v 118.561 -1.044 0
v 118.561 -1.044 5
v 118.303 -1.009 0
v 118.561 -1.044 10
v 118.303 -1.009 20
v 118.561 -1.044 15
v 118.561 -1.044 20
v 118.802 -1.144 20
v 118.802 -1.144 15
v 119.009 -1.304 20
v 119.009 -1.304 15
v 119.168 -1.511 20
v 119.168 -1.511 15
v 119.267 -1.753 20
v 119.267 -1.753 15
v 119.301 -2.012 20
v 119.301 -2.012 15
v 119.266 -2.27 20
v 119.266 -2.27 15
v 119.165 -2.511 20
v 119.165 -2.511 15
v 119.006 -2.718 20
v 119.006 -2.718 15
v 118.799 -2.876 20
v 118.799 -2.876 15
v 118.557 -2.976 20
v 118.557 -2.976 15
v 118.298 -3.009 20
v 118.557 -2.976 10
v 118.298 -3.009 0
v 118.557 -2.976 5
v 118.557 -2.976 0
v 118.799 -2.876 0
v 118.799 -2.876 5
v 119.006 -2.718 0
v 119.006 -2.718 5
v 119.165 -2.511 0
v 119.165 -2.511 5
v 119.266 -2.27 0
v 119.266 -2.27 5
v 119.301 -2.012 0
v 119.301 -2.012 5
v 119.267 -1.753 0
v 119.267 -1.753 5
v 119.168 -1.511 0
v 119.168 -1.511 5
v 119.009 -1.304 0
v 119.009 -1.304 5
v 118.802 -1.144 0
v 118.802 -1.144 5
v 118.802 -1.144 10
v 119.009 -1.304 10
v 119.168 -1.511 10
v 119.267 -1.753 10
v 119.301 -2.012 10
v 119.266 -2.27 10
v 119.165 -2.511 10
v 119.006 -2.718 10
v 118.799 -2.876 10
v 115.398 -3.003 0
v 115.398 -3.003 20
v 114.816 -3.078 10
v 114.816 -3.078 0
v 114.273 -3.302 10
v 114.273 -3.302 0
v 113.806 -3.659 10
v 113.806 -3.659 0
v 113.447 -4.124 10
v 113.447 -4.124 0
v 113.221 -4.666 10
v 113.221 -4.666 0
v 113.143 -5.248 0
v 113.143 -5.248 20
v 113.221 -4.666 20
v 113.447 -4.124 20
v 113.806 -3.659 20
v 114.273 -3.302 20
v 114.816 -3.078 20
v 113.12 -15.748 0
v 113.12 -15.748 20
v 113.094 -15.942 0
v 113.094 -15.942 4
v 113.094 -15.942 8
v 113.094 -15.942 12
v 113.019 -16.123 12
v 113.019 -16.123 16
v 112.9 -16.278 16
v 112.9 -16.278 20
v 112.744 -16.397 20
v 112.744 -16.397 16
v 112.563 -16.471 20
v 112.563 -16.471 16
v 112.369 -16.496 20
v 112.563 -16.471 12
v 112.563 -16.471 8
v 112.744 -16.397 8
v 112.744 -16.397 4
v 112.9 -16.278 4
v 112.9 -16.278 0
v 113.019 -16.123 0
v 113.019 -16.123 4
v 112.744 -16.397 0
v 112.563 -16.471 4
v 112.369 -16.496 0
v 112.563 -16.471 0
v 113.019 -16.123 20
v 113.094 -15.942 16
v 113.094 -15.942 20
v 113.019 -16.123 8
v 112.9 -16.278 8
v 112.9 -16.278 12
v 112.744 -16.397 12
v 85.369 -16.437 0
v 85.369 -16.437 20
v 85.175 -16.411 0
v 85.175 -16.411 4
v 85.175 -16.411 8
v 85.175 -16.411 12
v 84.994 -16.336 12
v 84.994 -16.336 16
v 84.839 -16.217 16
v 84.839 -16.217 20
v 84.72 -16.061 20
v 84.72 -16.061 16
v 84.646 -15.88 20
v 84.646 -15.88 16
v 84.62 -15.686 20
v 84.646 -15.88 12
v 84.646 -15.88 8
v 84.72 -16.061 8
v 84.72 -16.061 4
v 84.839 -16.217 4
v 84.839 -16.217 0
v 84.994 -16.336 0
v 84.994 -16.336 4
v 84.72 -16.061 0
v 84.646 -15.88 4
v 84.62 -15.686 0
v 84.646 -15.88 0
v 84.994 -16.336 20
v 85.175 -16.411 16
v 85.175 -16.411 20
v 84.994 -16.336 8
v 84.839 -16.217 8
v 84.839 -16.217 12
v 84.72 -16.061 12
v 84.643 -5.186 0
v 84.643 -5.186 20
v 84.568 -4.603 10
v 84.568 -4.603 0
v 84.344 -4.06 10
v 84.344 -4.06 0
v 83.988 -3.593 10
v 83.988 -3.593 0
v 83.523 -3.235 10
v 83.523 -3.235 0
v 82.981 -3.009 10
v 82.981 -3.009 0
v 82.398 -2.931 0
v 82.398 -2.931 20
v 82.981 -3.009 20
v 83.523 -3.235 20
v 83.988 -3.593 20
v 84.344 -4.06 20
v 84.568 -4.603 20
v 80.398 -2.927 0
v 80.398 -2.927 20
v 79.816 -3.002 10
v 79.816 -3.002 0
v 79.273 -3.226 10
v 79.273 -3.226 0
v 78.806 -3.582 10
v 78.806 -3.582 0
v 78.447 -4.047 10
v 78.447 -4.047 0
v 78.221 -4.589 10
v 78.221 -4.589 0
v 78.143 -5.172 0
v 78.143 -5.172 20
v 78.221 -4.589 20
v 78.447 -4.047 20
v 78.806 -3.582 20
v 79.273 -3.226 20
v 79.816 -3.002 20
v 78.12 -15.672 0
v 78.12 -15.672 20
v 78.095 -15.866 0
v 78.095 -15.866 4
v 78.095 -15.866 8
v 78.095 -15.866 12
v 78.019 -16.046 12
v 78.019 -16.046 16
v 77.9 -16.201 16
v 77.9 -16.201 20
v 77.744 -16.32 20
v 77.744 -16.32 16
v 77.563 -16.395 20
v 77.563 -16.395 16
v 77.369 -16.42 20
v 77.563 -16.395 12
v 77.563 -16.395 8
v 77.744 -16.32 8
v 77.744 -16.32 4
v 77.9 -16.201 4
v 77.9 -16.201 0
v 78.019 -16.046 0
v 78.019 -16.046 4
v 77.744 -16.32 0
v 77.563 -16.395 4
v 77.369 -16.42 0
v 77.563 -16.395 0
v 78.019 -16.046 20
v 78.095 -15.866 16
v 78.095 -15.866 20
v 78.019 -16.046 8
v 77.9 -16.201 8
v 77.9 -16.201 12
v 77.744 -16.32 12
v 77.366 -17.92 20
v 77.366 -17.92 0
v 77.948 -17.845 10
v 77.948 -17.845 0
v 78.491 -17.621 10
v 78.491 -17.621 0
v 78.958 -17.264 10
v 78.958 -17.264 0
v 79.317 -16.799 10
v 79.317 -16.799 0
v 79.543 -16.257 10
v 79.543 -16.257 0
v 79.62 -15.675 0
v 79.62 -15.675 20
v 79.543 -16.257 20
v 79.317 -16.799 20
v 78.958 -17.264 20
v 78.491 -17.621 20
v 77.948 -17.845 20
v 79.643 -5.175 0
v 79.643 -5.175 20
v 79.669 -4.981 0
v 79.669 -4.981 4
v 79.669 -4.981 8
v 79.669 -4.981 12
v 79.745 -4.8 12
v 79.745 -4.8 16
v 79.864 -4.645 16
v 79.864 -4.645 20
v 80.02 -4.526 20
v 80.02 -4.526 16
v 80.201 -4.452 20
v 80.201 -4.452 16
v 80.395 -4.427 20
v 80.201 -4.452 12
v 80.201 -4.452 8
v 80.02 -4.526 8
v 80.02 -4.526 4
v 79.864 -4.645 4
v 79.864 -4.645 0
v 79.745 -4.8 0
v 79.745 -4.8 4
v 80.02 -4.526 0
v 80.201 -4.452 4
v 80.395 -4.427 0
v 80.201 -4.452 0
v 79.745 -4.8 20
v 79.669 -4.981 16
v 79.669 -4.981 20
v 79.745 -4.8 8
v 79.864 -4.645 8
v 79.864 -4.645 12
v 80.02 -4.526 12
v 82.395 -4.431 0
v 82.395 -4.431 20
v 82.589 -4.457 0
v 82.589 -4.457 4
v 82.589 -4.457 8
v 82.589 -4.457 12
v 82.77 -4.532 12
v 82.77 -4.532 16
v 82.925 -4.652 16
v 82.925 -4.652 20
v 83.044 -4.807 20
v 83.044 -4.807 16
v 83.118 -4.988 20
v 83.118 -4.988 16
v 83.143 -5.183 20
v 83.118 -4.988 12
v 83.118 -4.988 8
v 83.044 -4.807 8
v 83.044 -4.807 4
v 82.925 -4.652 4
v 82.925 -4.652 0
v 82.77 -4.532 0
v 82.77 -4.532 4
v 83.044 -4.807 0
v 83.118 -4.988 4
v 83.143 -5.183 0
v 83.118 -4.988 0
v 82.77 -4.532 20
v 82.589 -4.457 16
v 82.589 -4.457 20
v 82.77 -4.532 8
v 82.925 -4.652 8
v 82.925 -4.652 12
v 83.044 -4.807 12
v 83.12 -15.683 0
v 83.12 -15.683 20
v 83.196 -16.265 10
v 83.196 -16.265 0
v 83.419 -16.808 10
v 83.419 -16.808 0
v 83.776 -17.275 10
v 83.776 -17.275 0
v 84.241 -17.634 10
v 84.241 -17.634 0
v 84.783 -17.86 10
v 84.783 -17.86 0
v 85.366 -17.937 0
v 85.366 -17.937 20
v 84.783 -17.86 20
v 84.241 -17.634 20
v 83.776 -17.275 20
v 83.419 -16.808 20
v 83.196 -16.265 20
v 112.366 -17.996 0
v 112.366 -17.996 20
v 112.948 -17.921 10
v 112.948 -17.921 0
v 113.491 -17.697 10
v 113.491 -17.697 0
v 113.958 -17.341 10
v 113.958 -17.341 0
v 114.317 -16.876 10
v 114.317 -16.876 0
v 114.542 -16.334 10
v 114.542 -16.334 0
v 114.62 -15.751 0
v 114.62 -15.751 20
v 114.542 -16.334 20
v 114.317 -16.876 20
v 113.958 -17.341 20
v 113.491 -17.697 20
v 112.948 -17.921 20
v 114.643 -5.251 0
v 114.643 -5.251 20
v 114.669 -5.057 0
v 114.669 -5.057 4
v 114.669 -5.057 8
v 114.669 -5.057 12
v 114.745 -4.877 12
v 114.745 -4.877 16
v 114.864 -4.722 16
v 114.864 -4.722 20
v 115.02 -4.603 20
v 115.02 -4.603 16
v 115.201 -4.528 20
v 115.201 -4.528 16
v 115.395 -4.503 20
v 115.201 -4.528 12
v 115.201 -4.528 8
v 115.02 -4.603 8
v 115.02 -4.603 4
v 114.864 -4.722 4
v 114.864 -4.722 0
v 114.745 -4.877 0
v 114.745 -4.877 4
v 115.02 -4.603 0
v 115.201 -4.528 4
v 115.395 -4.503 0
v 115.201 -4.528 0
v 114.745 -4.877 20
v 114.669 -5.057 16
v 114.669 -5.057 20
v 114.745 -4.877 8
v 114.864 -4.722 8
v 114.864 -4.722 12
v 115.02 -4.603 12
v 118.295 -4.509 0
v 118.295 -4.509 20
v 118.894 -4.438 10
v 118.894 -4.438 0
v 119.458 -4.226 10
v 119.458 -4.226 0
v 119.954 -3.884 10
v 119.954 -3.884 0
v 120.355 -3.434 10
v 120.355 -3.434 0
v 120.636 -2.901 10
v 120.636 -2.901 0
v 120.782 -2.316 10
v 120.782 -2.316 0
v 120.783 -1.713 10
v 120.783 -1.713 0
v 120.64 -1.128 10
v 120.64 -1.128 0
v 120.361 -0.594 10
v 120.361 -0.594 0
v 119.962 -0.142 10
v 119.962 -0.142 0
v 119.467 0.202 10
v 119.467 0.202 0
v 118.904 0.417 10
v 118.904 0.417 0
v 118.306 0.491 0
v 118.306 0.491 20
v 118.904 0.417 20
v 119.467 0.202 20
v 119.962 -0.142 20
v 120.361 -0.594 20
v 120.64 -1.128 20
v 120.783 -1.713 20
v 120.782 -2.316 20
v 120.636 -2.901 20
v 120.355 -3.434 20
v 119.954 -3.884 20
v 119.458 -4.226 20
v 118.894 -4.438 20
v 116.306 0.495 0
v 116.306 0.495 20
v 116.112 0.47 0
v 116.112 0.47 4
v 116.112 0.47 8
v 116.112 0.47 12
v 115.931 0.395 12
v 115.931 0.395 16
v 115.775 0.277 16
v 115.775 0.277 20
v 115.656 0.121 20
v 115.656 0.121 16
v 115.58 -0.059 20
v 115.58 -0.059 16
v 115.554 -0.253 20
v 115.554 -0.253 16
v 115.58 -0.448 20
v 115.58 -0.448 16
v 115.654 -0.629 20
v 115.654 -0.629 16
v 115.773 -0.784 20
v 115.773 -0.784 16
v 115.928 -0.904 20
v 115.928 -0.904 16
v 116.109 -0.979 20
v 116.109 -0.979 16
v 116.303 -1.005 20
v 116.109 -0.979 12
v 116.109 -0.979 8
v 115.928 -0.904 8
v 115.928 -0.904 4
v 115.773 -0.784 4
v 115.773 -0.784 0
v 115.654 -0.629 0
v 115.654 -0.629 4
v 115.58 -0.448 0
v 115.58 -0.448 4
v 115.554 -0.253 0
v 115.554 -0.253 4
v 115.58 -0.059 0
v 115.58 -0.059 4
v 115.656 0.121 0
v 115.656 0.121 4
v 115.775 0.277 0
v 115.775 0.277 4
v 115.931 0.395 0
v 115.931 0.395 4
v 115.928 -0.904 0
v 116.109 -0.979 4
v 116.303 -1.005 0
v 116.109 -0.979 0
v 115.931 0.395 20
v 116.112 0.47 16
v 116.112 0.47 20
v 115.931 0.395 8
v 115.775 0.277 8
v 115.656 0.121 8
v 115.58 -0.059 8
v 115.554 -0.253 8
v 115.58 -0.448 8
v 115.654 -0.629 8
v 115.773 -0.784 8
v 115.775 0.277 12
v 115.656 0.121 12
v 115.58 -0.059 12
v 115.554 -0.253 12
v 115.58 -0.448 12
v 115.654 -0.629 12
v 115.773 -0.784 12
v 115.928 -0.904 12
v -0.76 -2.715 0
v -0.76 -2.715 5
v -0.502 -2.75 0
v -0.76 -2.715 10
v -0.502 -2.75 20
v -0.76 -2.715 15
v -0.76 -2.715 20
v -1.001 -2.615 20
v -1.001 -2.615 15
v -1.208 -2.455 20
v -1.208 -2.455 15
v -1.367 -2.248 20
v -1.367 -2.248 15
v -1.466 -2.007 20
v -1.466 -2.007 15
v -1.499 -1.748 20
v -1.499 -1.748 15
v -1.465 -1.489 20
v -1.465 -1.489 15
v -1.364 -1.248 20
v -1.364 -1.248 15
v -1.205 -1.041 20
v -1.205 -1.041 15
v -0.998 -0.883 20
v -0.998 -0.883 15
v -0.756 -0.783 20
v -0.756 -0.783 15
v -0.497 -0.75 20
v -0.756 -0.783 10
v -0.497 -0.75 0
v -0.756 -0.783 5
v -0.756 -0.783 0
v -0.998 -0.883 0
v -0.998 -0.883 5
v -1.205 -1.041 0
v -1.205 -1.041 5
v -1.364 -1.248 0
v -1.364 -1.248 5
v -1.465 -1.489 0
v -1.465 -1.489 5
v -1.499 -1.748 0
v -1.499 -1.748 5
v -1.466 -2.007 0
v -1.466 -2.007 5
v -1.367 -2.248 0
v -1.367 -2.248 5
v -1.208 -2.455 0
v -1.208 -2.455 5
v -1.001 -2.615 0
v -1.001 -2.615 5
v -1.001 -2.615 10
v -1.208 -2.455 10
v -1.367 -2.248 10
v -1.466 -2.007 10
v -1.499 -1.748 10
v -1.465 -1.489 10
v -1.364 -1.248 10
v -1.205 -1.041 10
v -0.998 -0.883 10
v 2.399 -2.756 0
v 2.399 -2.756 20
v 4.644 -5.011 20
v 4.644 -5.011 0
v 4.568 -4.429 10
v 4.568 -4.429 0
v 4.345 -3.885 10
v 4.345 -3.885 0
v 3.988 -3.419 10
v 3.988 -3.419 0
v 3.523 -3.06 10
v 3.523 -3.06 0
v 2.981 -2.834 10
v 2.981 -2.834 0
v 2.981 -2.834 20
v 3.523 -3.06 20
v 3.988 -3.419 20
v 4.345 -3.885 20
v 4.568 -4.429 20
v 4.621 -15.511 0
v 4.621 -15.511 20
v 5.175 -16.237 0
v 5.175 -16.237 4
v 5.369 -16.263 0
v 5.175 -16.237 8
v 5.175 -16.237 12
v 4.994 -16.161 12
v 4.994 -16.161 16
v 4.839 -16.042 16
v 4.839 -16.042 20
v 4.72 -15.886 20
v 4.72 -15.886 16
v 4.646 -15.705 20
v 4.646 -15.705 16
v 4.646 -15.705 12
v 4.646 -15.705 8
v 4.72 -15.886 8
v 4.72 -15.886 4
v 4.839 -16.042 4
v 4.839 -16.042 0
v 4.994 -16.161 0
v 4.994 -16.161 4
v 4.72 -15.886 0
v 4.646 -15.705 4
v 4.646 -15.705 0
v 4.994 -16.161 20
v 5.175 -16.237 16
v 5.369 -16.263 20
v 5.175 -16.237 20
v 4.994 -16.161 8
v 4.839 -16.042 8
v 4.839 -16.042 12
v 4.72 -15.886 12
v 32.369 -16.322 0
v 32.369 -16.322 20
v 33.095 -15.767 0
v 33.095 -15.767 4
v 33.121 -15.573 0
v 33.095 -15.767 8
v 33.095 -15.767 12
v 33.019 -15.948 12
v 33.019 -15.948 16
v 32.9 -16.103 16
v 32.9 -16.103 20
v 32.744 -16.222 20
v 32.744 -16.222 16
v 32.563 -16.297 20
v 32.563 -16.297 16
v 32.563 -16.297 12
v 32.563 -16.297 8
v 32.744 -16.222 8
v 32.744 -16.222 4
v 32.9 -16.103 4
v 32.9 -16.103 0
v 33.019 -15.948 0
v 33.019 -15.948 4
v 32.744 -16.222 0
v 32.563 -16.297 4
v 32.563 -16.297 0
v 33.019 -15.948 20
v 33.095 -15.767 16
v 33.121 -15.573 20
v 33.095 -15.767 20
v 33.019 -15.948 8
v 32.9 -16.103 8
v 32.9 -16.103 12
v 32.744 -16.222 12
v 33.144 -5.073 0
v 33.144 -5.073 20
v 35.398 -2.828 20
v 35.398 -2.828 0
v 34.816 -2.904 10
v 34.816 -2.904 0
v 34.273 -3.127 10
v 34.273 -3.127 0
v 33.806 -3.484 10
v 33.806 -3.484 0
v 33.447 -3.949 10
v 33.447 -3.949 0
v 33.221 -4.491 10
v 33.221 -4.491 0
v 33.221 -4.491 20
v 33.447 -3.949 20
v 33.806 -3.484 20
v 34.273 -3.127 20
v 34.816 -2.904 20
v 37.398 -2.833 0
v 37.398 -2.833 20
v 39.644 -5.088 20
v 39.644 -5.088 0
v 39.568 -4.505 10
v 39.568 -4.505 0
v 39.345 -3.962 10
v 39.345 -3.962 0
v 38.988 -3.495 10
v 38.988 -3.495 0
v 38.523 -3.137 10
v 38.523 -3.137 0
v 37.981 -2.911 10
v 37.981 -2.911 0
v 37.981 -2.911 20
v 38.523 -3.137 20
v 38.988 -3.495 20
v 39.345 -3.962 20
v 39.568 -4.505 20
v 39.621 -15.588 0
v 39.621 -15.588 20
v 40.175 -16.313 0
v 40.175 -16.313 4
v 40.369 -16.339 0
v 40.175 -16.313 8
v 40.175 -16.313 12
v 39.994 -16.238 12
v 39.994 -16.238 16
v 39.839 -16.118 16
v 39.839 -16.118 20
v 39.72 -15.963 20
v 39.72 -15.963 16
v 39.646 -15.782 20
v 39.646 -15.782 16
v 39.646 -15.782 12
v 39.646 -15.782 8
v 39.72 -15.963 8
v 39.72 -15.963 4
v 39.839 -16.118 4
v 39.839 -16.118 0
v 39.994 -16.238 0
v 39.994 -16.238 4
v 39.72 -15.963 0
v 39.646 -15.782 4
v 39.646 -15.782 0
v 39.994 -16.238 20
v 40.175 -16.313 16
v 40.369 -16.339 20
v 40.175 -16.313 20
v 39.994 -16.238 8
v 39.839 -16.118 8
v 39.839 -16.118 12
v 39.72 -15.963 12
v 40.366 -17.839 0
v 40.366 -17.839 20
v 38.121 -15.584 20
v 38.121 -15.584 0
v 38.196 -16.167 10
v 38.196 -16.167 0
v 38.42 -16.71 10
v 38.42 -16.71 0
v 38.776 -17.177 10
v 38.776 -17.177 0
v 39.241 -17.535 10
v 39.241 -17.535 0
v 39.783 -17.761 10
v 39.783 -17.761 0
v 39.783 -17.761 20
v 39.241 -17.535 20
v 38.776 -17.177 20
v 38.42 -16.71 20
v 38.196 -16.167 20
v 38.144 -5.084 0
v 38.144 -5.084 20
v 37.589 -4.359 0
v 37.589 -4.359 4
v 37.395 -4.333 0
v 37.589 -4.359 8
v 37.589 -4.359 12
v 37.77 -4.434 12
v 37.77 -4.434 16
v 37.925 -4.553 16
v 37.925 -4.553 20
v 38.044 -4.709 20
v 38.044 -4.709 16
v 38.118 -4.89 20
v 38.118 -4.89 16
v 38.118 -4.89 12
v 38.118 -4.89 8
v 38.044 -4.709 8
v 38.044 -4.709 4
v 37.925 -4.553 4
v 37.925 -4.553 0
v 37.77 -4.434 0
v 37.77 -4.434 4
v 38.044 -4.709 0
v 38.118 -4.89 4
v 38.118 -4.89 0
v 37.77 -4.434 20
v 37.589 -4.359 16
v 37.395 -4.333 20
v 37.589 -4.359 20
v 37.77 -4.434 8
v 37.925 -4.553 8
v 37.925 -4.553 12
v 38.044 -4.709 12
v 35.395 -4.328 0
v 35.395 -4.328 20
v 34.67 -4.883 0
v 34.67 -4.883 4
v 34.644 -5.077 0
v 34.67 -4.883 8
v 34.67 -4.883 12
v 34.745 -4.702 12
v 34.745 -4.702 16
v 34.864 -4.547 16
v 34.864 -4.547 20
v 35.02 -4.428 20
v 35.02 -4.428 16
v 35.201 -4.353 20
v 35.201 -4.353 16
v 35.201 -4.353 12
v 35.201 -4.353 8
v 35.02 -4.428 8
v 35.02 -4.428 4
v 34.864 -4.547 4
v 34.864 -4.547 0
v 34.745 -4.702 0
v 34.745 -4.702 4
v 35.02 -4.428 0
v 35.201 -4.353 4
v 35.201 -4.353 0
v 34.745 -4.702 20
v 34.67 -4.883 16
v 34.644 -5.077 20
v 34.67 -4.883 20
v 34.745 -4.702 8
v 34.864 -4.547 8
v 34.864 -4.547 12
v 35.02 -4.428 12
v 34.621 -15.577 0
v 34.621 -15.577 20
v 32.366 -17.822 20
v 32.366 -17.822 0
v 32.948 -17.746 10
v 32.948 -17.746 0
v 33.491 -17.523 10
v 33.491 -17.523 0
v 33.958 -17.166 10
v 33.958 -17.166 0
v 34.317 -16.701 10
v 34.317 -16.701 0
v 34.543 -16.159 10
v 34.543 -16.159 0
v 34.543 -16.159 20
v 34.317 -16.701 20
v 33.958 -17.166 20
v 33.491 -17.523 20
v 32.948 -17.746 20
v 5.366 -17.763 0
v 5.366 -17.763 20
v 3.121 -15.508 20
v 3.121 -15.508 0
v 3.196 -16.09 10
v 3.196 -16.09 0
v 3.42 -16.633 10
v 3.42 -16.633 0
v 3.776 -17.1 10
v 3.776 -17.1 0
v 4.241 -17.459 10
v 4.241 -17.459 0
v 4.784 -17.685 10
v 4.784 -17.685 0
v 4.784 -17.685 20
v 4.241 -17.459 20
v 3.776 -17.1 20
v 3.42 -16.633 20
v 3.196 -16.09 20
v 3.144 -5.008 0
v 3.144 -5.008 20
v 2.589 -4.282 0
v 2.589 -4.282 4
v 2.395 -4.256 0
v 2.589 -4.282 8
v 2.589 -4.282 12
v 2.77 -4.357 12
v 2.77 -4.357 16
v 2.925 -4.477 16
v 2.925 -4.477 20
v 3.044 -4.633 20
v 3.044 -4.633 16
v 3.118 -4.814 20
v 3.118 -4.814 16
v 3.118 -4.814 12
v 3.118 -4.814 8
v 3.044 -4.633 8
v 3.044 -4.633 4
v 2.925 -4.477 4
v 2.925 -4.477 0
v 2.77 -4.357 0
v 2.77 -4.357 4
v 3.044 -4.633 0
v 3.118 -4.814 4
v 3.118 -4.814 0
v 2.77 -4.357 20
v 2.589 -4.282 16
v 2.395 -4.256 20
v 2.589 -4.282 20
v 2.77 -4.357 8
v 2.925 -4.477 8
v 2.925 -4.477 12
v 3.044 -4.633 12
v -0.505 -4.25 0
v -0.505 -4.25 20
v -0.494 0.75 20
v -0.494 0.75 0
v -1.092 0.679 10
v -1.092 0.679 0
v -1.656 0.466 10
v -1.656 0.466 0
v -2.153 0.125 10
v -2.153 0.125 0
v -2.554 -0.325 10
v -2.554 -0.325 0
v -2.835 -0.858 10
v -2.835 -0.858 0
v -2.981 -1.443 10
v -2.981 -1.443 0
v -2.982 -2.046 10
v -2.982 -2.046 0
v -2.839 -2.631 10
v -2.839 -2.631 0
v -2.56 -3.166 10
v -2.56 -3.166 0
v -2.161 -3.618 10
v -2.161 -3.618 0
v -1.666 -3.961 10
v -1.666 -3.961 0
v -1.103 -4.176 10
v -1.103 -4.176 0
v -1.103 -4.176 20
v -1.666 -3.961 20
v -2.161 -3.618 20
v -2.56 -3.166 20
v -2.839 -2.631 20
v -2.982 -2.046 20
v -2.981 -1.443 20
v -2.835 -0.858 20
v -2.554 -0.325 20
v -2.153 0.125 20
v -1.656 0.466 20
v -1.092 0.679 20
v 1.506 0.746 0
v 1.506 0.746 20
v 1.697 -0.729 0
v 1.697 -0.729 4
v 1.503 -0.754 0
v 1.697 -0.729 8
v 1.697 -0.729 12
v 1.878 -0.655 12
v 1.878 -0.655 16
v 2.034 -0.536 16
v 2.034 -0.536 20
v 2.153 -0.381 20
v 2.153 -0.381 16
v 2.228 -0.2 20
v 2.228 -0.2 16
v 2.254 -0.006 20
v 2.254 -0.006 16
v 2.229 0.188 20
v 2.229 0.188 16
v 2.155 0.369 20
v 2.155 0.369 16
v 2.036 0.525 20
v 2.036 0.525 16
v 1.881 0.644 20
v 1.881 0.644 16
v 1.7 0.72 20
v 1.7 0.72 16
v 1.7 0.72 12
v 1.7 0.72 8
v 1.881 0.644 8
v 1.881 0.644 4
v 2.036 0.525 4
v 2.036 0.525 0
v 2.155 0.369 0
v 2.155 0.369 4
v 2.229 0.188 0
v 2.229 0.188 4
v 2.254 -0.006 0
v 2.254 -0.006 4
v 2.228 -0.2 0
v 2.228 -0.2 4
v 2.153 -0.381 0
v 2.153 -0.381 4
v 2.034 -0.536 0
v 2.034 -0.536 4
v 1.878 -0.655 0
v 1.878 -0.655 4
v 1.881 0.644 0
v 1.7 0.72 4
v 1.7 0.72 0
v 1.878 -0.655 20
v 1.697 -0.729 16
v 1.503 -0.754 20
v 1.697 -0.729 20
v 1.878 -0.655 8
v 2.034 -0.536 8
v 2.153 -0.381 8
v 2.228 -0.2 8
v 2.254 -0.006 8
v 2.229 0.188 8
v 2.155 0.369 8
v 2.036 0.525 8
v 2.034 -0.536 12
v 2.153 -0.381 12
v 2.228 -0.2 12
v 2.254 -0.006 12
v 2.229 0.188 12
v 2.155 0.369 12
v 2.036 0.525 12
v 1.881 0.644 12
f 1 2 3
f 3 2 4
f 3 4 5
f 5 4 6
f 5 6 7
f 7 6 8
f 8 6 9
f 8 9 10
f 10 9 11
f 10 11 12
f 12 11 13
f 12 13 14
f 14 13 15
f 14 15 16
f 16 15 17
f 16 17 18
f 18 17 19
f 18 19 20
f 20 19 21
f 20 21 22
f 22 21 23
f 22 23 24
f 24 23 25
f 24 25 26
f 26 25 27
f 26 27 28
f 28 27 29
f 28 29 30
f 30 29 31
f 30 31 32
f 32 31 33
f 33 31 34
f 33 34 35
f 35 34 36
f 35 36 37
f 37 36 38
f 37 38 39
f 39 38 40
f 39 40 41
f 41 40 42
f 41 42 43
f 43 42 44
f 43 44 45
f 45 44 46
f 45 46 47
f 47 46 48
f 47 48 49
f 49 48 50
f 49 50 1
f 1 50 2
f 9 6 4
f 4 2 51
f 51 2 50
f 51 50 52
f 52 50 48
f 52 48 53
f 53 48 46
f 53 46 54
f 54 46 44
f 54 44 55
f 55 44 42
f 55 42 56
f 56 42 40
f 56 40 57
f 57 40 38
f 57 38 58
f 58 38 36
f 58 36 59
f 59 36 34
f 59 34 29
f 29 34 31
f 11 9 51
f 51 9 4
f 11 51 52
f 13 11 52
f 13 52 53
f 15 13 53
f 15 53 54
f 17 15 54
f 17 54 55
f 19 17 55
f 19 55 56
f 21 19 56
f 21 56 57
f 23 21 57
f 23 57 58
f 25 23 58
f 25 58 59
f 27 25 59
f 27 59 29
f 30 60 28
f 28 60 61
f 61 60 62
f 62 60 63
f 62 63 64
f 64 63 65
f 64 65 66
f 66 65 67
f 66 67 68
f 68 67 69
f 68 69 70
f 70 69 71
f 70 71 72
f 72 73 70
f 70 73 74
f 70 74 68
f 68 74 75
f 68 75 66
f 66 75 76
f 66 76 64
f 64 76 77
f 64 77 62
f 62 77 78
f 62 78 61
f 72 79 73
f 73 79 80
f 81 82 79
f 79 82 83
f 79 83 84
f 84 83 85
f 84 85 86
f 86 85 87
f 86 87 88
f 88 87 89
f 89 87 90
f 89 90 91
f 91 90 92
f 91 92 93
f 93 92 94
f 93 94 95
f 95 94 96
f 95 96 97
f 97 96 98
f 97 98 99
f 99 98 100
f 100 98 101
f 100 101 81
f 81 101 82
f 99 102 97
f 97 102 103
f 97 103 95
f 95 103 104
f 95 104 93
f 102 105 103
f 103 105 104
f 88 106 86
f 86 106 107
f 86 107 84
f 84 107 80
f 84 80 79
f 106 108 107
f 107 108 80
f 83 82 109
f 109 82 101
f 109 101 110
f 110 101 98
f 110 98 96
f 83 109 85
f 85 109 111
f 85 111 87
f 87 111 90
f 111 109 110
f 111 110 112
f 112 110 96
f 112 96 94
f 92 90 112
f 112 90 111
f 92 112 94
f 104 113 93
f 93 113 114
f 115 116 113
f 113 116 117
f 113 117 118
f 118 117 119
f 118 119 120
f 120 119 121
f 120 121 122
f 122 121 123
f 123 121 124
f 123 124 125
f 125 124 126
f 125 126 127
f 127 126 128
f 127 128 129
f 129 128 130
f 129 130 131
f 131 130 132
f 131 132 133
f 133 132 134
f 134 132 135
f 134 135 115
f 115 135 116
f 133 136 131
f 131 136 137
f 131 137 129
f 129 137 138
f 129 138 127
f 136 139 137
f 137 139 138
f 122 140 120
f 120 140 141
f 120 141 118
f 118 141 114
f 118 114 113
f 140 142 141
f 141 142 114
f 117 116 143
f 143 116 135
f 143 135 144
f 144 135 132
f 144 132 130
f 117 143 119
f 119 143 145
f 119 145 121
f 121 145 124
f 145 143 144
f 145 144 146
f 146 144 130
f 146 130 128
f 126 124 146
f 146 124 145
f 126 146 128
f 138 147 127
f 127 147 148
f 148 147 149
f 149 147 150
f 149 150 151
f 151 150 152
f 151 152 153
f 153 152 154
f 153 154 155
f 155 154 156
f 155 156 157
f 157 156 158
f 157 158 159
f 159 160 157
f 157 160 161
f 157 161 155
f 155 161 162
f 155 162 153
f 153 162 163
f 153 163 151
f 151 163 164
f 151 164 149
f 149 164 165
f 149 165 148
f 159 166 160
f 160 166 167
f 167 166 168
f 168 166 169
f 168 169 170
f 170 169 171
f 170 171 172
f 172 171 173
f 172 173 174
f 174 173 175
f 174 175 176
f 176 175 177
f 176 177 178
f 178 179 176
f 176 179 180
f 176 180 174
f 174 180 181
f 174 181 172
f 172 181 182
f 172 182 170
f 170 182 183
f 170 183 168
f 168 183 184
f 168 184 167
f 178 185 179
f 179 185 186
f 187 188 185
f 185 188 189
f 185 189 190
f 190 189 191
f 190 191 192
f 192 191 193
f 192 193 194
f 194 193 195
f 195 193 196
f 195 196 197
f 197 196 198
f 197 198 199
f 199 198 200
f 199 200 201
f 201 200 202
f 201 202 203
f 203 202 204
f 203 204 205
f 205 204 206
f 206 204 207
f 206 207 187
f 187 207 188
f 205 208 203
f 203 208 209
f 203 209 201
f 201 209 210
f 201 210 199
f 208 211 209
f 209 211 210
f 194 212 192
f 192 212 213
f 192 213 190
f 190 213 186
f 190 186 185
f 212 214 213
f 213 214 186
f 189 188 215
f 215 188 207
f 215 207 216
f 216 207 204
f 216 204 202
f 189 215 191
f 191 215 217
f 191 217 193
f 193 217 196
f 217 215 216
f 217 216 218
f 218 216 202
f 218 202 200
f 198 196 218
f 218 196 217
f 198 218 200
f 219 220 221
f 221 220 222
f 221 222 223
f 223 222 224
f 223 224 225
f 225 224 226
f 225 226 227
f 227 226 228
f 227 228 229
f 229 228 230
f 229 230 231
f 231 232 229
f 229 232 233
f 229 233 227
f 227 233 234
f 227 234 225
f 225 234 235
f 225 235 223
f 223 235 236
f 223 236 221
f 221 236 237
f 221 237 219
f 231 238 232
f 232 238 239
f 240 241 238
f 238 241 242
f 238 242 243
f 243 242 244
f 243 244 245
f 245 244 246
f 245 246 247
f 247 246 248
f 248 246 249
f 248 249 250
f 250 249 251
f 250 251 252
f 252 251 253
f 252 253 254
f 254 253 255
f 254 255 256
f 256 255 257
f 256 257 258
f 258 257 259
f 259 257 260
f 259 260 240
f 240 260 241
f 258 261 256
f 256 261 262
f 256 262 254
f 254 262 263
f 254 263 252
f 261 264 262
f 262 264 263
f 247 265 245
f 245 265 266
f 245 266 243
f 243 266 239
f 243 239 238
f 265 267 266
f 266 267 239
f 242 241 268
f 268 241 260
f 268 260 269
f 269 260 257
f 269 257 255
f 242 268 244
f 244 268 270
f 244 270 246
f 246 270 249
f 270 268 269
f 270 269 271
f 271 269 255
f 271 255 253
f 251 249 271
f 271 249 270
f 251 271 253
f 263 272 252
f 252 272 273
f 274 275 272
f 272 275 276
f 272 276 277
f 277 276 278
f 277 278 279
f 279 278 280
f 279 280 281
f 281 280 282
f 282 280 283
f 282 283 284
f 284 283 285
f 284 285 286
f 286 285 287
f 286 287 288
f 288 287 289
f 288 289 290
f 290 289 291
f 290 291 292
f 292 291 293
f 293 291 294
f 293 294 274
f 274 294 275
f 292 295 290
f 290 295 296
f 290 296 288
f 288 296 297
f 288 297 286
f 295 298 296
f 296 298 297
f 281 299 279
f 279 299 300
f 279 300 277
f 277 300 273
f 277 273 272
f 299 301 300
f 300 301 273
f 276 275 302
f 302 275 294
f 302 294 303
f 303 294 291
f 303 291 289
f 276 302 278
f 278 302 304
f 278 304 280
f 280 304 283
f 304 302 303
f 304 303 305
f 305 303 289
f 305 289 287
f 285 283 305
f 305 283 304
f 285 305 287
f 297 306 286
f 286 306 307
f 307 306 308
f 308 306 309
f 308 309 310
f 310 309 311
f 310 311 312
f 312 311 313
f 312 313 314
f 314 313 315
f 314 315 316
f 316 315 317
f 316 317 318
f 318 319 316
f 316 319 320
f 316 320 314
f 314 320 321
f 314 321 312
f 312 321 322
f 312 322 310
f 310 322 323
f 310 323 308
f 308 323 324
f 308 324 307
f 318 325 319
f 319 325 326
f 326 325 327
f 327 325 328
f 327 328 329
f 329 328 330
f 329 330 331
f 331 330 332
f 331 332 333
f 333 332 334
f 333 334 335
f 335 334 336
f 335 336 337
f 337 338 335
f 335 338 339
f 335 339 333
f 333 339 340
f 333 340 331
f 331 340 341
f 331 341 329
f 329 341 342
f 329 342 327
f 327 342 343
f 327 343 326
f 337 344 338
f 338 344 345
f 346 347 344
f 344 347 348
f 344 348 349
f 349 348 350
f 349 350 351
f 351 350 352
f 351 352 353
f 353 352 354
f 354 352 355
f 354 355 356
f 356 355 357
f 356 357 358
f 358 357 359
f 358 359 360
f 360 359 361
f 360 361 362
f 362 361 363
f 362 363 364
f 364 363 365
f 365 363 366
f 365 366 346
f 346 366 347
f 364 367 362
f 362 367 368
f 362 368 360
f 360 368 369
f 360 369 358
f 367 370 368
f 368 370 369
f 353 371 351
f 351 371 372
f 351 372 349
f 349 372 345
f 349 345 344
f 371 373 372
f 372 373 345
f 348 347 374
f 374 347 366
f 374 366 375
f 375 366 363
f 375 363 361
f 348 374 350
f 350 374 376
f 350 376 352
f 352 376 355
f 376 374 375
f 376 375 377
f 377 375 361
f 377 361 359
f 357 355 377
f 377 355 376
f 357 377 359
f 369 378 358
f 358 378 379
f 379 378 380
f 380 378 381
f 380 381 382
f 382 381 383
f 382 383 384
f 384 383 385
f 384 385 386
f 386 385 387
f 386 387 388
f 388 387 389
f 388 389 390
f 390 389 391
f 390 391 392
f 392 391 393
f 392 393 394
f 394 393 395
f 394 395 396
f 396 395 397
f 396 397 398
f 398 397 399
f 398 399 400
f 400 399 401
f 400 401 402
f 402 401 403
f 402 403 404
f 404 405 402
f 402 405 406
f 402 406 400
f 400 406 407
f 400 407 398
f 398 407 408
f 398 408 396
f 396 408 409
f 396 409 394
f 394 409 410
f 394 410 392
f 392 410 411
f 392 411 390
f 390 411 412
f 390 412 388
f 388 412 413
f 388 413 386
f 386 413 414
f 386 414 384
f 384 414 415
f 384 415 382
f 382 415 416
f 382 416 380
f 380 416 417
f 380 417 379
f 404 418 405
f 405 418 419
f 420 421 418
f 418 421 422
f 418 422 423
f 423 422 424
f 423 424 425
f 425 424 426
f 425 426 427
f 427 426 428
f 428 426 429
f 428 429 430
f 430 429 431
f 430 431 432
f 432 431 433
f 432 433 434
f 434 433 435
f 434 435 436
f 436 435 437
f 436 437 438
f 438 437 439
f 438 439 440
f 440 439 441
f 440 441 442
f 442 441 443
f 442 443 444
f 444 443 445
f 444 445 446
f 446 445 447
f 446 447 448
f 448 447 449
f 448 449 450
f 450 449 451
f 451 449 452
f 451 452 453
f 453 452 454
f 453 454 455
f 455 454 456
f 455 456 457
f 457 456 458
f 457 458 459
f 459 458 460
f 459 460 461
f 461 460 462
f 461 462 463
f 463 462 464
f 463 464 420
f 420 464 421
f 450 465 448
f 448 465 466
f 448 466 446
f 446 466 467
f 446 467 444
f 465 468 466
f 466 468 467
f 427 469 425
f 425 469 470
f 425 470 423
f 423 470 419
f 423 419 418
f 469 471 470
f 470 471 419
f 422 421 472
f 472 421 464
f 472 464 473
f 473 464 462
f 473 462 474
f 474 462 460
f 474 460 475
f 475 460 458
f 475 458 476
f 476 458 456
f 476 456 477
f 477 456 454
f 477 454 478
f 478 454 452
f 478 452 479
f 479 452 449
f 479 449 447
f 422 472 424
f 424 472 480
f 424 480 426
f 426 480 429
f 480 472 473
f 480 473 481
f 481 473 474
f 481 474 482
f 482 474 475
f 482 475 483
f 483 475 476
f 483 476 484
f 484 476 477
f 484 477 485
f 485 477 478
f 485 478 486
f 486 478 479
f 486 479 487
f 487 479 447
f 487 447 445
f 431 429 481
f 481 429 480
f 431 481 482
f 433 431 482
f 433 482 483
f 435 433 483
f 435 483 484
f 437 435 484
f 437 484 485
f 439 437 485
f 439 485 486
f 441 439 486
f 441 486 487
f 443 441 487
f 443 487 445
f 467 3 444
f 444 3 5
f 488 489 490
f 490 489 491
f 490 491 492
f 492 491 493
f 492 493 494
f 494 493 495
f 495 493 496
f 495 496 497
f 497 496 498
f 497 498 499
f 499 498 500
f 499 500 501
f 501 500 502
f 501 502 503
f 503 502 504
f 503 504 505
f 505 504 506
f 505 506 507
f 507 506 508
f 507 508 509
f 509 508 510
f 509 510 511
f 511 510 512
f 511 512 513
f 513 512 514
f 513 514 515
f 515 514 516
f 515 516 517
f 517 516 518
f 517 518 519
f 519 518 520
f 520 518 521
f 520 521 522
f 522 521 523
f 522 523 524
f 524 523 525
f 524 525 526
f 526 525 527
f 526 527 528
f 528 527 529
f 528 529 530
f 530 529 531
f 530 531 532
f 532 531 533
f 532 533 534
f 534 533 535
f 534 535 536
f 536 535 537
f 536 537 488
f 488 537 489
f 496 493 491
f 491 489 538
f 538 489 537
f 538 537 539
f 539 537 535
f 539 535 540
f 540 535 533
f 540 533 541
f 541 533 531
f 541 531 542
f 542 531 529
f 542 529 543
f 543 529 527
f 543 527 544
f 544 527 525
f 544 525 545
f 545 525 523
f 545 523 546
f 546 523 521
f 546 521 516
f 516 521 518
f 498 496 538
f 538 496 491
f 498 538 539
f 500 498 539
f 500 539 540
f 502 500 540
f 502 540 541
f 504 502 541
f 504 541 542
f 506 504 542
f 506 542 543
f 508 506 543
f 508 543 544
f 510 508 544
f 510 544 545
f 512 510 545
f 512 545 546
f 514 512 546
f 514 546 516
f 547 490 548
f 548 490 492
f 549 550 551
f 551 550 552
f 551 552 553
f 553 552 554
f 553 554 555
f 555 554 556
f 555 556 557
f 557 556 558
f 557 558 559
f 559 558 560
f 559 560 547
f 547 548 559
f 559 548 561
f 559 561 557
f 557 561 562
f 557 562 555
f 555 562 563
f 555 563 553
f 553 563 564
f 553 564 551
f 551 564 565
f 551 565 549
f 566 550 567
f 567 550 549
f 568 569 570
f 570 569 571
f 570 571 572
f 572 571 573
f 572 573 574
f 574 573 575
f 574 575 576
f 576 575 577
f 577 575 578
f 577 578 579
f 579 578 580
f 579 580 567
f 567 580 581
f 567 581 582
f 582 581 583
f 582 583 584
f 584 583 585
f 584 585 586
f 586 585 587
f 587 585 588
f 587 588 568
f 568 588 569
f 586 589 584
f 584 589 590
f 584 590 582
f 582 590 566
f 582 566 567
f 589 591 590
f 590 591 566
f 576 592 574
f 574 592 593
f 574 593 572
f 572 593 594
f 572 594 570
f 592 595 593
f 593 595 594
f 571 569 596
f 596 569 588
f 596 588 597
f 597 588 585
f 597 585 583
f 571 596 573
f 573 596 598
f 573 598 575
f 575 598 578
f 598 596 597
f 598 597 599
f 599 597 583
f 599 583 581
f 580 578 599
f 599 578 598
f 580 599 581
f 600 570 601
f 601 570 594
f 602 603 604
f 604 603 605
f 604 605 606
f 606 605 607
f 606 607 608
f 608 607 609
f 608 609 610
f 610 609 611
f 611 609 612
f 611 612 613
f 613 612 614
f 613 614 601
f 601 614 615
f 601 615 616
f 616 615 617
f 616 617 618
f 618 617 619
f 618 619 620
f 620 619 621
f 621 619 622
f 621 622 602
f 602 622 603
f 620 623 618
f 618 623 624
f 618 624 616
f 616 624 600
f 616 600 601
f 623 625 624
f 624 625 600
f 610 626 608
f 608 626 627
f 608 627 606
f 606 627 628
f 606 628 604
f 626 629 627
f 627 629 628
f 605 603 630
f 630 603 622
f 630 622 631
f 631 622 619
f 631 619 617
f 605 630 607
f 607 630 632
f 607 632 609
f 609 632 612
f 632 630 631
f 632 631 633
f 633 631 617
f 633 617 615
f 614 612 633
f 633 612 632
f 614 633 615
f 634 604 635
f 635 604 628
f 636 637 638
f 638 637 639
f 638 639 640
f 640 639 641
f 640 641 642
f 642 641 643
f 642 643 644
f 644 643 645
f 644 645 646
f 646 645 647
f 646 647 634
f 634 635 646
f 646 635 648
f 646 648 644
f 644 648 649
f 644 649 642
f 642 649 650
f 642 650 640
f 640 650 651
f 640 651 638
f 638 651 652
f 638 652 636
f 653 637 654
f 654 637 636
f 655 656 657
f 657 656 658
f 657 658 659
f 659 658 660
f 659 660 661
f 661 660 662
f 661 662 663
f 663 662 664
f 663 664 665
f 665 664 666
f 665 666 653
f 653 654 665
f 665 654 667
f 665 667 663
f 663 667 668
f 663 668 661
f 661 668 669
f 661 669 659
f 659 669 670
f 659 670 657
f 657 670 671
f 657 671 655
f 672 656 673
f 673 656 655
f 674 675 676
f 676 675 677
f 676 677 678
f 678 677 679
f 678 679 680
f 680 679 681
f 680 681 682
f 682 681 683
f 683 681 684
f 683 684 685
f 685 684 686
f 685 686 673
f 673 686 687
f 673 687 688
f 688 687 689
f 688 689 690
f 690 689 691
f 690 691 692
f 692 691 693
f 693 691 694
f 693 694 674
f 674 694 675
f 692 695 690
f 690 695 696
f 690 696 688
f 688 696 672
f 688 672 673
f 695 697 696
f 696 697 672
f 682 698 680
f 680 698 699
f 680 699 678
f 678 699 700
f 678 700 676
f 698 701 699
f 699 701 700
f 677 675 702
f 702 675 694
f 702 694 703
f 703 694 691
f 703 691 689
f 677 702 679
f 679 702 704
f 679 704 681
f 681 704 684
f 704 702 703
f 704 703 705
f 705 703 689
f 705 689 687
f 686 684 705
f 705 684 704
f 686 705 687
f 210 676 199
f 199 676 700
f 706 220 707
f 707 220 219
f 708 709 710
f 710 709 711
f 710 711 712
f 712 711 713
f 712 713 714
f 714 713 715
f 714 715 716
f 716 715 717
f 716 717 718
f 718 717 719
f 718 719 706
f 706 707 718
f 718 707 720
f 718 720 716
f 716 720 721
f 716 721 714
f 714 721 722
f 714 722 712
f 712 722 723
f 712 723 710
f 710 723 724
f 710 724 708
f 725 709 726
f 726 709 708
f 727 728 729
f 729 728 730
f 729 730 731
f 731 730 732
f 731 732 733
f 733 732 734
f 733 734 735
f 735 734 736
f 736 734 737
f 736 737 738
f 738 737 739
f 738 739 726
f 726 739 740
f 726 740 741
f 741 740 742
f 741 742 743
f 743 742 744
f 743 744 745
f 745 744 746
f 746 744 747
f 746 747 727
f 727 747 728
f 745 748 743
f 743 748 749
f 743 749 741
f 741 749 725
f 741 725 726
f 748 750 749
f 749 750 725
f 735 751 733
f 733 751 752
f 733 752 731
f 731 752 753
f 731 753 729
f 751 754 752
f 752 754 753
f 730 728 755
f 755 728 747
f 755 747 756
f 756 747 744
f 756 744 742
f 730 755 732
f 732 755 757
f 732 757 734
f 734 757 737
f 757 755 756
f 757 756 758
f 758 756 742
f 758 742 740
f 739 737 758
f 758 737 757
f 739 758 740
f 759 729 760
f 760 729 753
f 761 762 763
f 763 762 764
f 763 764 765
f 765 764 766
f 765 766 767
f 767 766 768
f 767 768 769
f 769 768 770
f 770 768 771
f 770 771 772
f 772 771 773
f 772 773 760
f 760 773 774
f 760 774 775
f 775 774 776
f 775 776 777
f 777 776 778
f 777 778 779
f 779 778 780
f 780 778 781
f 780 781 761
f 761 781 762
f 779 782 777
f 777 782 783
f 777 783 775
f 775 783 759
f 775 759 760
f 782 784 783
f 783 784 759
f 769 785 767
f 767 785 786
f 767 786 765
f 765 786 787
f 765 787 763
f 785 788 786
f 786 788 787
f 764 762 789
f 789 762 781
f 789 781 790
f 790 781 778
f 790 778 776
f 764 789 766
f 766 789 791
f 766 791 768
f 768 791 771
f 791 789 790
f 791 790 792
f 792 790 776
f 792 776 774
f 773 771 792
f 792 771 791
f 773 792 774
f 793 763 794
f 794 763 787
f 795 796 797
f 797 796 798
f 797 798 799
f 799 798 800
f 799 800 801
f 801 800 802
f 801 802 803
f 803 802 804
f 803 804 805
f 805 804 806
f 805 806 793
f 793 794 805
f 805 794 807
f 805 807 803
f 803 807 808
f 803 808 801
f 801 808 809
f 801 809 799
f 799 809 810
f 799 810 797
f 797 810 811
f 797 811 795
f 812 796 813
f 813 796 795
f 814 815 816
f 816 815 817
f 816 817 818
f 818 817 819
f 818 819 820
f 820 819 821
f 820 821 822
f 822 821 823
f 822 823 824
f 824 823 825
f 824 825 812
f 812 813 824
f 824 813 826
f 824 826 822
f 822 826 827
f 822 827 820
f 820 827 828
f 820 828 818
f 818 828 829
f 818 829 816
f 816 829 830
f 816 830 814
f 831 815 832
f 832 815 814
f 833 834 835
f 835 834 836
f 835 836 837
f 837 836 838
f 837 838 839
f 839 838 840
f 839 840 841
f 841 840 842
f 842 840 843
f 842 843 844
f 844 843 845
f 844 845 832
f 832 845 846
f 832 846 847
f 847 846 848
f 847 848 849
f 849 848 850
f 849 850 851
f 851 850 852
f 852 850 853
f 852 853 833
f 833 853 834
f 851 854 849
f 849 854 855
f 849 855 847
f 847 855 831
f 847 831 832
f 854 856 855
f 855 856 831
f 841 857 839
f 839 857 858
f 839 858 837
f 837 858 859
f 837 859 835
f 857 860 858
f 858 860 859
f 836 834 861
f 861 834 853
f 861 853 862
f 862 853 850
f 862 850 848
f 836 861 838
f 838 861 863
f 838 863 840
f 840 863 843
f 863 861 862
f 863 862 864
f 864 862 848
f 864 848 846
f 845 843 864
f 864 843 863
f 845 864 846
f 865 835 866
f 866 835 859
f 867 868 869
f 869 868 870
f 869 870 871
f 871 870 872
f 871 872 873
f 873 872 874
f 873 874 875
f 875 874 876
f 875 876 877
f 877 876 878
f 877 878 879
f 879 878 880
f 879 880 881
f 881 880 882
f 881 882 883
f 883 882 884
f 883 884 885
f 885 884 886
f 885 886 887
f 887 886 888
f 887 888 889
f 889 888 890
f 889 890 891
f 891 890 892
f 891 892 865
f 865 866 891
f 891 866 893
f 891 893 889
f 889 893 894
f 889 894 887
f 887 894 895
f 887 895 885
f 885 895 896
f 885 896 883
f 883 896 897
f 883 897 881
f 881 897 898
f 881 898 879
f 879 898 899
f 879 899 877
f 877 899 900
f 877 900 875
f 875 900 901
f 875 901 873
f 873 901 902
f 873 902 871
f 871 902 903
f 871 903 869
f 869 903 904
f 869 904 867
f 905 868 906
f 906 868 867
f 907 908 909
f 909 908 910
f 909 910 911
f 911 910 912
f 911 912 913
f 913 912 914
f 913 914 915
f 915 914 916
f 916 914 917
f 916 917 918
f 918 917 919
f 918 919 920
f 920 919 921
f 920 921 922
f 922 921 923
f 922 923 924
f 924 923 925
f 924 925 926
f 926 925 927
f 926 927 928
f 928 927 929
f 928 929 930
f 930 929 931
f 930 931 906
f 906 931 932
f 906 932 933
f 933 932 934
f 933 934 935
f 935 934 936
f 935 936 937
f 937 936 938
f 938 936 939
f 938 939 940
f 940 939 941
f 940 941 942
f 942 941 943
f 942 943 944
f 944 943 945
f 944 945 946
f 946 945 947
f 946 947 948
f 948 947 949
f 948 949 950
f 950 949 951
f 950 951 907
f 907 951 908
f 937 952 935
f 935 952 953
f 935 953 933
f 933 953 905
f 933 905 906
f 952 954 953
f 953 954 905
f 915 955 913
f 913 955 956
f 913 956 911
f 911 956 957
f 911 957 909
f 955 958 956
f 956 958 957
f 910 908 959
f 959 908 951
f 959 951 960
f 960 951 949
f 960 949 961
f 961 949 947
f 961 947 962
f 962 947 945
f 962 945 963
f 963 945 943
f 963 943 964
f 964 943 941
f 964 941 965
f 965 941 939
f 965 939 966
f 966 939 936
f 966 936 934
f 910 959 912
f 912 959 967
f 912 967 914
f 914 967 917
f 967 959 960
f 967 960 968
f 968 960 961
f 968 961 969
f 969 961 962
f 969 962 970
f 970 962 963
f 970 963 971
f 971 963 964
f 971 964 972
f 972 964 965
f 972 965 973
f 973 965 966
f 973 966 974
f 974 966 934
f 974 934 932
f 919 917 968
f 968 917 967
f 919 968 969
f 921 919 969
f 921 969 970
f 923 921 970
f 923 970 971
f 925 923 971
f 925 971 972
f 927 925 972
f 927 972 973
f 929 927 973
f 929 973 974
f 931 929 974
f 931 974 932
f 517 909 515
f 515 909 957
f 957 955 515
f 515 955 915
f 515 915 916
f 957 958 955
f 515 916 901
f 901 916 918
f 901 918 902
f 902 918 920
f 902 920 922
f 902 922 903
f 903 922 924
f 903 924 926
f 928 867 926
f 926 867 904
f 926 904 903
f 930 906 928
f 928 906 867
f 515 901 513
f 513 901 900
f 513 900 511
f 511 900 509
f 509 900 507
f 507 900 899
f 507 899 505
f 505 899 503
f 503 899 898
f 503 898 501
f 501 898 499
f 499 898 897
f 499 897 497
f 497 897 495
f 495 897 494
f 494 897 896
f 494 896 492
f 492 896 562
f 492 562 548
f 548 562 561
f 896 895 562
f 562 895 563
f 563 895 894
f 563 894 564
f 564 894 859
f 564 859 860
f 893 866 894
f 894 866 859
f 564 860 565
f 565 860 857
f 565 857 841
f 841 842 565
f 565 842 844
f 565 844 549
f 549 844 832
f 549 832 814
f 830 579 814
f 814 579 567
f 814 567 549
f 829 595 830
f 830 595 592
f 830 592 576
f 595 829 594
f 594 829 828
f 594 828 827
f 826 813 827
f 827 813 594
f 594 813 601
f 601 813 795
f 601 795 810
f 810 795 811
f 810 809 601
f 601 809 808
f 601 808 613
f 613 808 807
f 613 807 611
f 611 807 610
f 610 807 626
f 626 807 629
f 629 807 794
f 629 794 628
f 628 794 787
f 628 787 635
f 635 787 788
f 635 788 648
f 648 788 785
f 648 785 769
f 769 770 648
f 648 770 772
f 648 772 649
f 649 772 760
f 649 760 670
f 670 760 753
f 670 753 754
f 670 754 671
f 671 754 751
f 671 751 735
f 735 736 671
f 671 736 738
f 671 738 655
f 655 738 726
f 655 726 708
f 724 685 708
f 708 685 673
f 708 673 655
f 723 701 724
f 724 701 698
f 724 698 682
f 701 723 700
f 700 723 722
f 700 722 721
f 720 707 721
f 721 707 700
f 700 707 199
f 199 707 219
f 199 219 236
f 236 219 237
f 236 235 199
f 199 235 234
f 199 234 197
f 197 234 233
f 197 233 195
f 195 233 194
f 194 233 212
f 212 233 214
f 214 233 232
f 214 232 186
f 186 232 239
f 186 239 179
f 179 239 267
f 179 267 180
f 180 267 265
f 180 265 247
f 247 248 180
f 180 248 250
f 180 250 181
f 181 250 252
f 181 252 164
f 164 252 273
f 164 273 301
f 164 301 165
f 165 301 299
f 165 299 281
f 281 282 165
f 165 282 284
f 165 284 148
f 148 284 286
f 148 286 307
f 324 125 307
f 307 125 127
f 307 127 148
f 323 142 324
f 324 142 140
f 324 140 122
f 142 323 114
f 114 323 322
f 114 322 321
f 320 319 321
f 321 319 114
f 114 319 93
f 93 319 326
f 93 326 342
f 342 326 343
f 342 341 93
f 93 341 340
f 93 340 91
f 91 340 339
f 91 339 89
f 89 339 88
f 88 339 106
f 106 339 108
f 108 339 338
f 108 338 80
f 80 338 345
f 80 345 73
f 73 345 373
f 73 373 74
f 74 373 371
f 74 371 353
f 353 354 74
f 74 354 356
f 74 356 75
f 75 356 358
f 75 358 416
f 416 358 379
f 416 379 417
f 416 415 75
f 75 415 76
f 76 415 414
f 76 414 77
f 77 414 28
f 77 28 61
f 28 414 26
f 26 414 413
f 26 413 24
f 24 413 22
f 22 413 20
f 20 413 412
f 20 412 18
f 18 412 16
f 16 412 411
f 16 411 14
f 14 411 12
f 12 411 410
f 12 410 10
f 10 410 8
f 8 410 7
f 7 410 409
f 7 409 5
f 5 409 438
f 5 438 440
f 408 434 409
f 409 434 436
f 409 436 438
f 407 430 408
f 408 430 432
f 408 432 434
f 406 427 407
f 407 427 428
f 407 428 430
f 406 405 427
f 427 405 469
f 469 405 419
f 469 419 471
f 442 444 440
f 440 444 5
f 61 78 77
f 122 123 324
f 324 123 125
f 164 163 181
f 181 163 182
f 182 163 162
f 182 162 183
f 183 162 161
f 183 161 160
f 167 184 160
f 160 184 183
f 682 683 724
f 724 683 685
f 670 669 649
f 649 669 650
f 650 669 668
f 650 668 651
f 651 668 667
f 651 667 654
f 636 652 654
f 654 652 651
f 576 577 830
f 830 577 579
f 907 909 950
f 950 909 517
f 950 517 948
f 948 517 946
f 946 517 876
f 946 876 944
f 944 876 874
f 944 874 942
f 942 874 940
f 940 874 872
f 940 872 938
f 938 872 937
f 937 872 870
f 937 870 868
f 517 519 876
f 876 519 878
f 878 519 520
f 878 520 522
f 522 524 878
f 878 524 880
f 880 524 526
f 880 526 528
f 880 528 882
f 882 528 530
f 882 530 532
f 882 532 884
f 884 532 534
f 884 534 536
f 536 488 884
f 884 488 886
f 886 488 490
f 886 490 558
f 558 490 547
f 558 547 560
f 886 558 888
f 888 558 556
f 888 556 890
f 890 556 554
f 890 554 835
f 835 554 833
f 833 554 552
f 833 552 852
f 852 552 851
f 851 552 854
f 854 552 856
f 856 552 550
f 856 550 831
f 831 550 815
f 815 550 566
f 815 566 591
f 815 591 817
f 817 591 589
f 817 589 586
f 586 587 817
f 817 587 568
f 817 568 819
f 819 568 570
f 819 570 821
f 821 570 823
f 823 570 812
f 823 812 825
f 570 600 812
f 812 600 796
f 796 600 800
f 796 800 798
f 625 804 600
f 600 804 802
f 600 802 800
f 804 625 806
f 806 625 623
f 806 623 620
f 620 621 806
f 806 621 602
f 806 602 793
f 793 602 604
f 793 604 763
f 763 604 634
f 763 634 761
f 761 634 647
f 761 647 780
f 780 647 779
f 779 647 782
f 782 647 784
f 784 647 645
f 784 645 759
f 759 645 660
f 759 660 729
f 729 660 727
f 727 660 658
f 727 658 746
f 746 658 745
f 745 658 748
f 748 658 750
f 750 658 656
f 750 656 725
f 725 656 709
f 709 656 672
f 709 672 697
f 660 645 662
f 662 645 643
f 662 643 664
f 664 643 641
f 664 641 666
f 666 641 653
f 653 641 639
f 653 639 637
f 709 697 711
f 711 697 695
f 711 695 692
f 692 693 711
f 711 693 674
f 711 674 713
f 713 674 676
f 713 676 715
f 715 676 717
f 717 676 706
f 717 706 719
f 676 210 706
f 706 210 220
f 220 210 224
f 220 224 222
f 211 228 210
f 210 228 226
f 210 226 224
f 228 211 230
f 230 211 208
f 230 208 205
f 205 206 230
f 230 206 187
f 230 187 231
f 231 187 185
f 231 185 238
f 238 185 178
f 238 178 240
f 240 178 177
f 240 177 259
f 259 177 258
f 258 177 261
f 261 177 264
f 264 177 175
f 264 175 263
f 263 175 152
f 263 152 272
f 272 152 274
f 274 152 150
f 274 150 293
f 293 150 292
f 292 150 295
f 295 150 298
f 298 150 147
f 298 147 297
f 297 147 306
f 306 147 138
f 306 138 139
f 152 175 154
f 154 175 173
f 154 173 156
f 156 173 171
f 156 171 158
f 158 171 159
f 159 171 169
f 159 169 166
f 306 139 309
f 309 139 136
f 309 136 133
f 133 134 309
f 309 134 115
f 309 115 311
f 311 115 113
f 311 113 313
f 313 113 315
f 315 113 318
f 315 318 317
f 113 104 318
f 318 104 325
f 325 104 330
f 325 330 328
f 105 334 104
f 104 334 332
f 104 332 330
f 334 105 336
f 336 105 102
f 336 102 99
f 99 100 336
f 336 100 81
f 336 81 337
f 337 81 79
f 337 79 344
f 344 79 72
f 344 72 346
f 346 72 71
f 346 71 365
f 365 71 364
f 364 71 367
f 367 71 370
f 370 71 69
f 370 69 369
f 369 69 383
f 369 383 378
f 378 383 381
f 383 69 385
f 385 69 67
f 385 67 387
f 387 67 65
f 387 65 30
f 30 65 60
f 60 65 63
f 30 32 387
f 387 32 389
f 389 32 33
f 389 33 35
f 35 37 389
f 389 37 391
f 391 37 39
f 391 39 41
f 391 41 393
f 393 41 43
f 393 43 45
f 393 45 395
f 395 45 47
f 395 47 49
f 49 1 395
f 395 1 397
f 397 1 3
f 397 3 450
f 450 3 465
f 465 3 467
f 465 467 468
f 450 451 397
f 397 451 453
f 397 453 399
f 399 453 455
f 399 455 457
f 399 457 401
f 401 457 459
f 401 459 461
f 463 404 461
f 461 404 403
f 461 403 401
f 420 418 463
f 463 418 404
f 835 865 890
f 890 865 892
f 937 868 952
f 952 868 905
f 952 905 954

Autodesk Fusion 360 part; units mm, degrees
sketch "Sketch1" plane through (0, 0, 0) normal (0, 0, 1) x (1, 0, 0)
  line L0 (-0.5032, -3.4999) -> (2.3969, -3.5062) construction
  line L1 (3.8936, -5.0095) -> (3.8707, -15.5094) construction
  line L2 (5.3674, -17.0127) -> (32.3673, -17.0717) construction
  line L3 (33.8706, -15.575) -> (33.8935, -5.075) construction
  line L4 (35.3968, -3.5783) -> (37.3968, -3.5826) construction
  line L5 (38.8935, -5.0859) -> (38.8706, -15.5859) construction
  line L6 (40.3673, -17.0892) -> (58.8673, -17.1296) construction
  arc A0 (3.8707, -15.5094) -> (5.3674, -17.0127) centre (5.3707, -15.5127) ccw construction
  arc A1 (3.8936, -5.0095) -> (2.3969, -3.5062) centre (2.3936, -5.0062) ccw construction
  arc A2 (32.3673, -17.0717) -> (33.8706, -15.575) centre (32.3706, -15.5717) ccw construction
  arc A3 (35.3968, -3.5783) -> (33.8935, -5.075) centre (35.3935, -5.0783) ccw construction
  arc A4 (38.8935, -5.0859) -> (37.3968, -3.5826) centre (37.3935, -5.0826) ccw construction
  arc A5 (38.8706, -15.5859) -> (40.3673, -17.0892) centre (40.3706, -15.5892) ccw construction
  arc A6 (4.6436, -5.0111) -> (2.3985, -2.7562) centre (2.3936, -5.0062) ccw
  line L7 (-0.5049, -4.2499) -> (2.3952, -4.2562)
  line L8 (-0.5016, -2.7499) -> (2.3985, -2.7562)
  arc A7 (3.1436, -5.0078) -> (2.3952, -4.2562) centre (2.3936, -5.0062) ccw
  line L9 (3.1436, -5.0078) -> (3.1207, -15.5078)
  arc A8 (3.1207, -15.5078) -> (5.3658, -17.7627) centre (5.3707, -15.5127) ccw
  line L10 (5.3658, -17.7627) -> (32.3657, -17.8217)
  line L11 (4.6436, -5.0111) -> (4.6207, -15.5111)
  arc A9 (4.6207, -15.5111) -> (5.369, -16.2627) centre (5.3707, -15.5127) ccw
  line L12 (5.369, -16.2627) -> (32.369, -16.3217)
  arc A10 (32.369, -16.3217) -> (33.1206, -15.5733) centre (32.3706, -15.5717) ccw
  line L13 (33.1206, -15.5733) -> (33.1435, -5.0734)
  arc A11 (35.3984, -2.8283) -> (33.1435, -5.0734) centre (35.3935, -5.0783) ccw
  line L14 (35.3984, -2.8283) -> (37.3984, -2.8326)
  arc A12 (39.6435, -5.0876) -> (37.3984, -2.8326) centre (37.3935, -5.0826) ccw
  line L15 (39.6435, -5.0876) -> (39.6206, -15.5875)
  arc A13 (39.6206, -15.5875) -> (40.3689, -16.3392) centre (40.3706, -15.5892) ccw
  line L16 (40.3689, -16.3392) -> (58.8689, -16.3796)
  arc A14 (32.3657, -17.8217) -> (34.6206, -15.5766) centre (32.3706, -15.5717) ccw
  line L17 (34.6206, -15.5766) -> (34.6435, -5.0766)
  arc A15 (35.3952, -4.3283) -> (34.6435, -5.0766) centre (35.3935, -5.0783) ccw
  line L18 (35.3952, -4.3283) -> (37.3952, -4.3326)
  arc A16 (38.1435, -5.0843) -> (37.3952, -4.3326) centre (37.3935, -5.0826) ccw
  line L19 (38.1435, -5.0843) -> (38.1206, -15.5843)
  arc A17 (38.1206, -15.5843) -> (40.3657, -17.8392) centre (40.3706, -15.5892) ccw
  line L20 (40.3657, -17.8392) -> (58.8656, -17.8796)
  line L21 (58.8689, -16.3796) -> (58.8656, -17.8796)
  line L22 (-0.5016, -2.7499) -> (-0.4994, -1.7499) construction
  line L23 (-0.5049, -4.2499) -> (-0.4939, 0.7501) construction
  arc A18 (-0.4972, -0.7499) -> (-0.5016, -2.7499) centre (-0.4994, -1.7499) ccw
  arc A19 (-0.4939, 0.7501) -> (-0.5049, -4.2499) centre (-0.4994, -1.7499) ccw
  line L24 (-0.4972, -0.7499) -> (1.5028, -0.7542)
  line L25 (-0.4939, 0.7501) -> (1.5061, 0.7458)
  arc A20 (1.5028, -0.7542) -> (1.5061, 0.7458) centre (1.5044, -0.0042) ccw
  point P0 (3.8969, -3.5095)
  point P1 (3.8674, -17.0094)
  point P2 (33.8673, -17.075)
  point P3 (33.8968, -3.575)
  point P4 (38.8968, -3.5859)
  point P5 (38.8673, -17.0859)
  dimension "d34" = 30
  dimension "d35" = 13.5
  dimension "d36" = 5
  dimension "d37" = 13.5
  dimension "d38" = 20
  dimension "d39" = 1.5
  dimension "d40" = 1.5
  dimension "d41" = 1.5
  dimension "d42" = 1.5
  dimension "d43" = 1.5
  dimension "d44" = 1.5
  dimension "d49" = 0.75
  dimension "d52" = 0.75
  dimension "d53" = -0.75
  dimension "d54" = -0.75
  dimension "d55" = 0.75
  dimension "d56" = -0.75
  dimension "d57" = 0.75
  dimension "d58" = 0.75
  dimension "d59" = 1
  dimension "d60" = 2
  dimension "d62" = 5
  dimension "d67" = 2
  dimension "d68" = 2
extrude "Extrude1" add sketch "Sketch1" along normal blind 20
mirror "Mirror1" about plane through (58.8689, -16.3796, 0) normal (1, -0.0022, 0) of bodies 1 merged
equation "i1 = 2 mm"
equation "i2 = 5 mm"
equation "i3 = 30 mm"
equation "d34 = i3"
equation "d35 = h - t"
equation "d36 = i2"
equation "d37 = h - t"
equation "d38 = i / 2 - 2 * i2 - i3"
equation "d39 = Radial Dimension-2"
equation "d40 = Radial Dimension-3"
equation "d41 = Radial Dimension-4"
equation "d42 = Radial Dimension-5"
equation "d43 = Radial Dimension-6"
equation "d44 = Radial Dimension-7"
equation "d49 = t / 2"
equation "d52 = t / 2"
equation "d53 = -t / 2"
equation "d54 = -t / 2"
equation "d55 = t / 2"
equation "d56 = -t / 2"
equation "d57 = t / 2"
equation "d58 = t / 2"
equation "d67 = i1"
equation "d68 = i1"
